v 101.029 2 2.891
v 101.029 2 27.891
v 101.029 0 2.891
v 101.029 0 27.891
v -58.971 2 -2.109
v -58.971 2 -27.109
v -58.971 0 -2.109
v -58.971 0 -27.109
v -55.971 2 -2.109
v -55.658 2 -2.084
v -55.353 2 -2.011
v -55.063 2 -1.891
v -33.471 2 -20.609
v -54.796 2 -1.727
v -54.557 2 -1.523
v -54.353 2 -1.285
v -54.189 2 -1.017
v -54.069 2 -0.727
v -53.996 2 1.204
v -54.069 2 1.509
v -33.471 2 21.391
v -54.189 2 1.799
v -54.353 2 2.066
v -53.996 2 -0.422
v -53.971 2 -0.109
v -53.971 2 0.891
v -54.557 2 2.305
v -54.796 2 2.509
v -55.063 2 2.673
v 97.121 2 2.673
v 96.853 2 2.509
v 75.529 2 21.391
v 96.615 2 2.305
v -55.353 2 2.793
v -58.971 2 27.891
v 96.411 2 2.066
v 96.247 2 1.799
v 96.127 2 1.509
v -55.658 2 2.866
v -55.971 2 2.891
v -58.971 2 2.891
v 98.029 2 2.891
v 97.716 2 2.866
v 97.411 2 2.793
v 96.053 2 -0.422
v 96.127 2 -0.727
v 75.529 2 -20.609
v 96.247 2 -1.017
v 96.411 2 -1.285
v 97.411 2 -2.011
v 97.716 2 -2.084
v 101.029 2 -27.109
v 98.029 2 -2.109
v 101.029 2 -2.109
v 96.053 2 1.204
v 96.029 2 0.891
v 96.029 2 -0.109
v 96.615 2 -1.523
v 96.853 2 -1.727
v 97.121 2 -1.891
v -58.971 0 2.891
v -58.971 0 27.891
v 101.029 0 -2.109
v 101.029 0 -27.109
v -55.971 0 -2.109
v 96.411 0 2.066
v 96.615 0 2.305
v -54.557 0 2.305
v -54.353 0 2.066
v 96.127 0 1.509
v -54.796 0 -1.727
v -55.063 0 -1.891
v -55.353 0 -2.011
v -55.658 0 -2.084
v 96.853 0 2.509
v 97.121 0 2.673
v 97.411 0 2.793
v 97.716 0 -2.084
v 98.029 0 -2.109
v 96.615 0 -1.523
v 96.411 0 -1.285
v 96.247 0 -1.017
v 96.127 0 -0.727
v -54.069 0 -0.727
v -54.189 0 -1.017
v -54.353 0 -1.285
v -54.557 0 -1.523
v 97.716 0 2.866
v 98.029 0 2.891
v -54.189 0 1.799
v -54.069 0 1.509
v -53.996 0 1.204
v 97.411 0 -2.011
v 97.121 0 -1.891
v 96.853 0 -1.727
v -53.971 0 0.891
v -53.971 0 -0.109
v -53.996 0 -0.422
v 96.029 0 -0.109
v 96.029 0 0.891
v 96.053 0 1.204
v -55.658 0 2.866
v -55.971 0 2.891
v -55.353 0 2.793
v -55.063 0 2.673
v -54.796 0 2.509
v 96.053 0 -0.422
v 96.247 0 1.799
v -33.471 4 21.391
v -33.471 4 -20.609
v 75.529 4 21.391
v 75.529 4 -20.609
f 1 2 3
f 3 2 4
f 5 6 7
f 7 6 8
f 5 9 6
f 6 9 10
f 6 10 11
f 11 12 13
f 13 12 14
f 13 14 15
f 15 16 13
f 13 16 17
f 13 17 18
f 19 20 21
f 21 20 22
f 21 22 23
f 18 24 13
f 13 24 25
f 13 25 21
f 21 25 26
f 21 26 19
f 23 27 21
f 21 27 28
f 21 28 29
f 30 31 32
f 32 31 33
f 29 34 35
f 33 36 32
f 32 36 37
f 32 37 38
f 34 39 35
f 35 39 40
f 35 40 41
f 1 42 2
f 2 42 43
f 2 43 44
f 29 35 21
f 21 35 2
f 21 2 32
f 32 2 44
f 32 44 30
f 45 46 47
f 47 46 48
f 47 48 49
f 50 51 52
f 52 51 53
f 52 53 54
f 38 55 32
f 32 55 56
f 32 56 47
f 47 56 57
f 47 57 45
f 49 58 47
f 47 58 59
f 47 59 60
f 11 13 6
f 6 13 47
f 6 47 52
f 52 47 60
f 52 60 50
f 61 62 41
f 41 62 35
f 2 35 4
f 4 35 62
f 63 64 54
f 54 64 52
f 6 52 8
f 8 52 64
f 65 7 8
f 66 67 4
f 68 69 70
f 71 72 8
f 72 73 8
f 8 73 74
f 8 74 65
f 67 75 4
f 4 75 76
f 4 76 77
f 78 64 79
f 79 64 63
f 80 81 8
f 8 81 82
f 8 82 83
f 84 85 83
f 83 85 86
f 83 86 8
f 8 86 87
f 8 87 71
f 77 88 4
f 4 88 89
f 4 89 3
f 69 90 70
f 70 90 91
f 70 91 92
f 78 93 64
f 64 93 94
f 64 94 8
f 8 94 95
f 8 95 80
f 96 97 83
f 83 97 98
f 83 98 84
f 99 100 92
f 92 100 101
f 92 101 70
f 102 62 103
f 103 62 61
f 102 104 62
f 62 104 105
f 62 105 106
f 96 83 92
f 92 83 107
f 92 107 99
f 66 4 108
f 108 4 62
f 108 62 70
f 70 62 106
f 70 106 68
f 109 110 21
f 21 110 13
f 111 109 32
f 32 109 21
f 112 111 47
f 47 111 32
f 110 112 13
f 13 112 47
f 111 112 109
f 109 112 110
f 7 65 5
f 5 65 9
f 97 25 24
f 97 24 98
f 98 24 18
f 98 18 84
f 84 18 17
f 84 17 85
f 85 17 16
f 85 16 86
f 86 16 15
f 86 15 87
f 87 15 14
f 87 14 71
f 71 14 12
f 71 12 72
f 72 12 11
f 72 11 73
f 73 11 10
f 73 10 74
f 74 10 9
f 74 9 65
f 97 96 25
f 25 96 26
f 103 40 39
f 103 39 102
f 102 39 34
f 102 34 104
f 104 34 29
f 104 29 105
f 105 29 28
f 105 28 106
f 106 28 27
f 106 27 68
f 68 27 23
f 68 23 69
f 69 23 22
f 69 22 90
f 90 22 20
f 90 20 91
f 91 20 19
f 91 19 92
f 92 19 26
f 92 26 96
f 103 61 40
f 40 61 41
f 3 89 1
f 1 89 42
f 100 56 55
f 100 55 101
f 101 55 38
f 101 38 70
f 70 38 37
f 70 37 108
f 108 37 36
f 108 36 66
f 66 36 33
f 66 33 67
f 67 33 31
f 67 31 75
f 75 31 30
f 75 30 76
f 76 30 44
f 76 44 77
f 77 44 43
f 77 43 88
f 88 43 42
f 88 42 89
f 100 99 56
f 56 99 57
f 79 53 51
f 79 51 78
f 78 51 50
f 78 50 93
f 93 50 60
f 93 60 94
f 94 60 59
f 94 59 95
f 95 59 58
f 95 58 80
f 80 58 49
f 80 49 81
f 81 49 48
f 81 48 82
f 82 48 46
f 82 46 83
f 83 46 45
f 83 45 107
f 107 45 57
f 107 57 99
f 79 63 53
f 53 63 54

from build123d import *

# Parameters (mm, degrees)
SKETCH1_W           = 160
SKETCH1_H           = 55
BOSS_EXTRUDE1_DEPTH = 2
SKETCH2_W           = 109
SKETCH2_H           = 42
BOSS_EXTRUDE2_DEPTH = 2
CUT_EXTRUDE1_DEPTH  = 2


with BuildPart() as part:
    # Sketch1 → Boss-Extrude1 (new body)
    with BuildSketch(Plane(origin=(0, 0, 0), x_dir=(1, 0, 0), z_dir=(0, 1, 0))):
        with Locations((21.028856201, -0.390930324)):
            Rectangle(SKETCH1_W, SKETCH1_H)
    extrude(amount=BOSS_EXTRUDE1_DEPTH)

    # Sketch2 → Boss-Extrude2 (add)
    with BuildSketch(Plane(origin=(0, 2, 0), x_dir=(1, 0, 0), z_dir=(0, 1, 0))):
        with Locations((21.028856201, -0.390930324)):
            Rectangle(SKETCH2_W, SKETCH2_H)
    extrude(amount=BOSS_EXTRUDE2_DEPTH)

    # Sketch3 → Cut-Extrude1 (cut)
    with BuildSketch(Plane(origin=(0, 2, 0), x_dir=(1, 0, 0), z_dir=(0, 1, 0))):
        with BuildLine():
            Line((-58.971143799, 2.109069676), (-55.971143799, 2.109069676))
            ThreePointArc((-55.971143799, 2.109069676), (-54.556930237, 1.523283239), (-53.971143799, 0.109069676))
            Line((-53.971143799, 0.109069676), (-53.971143799, -0.890930324))
            ThreePointArc((-53.971143799, -0.890930324), (-54.556930237, -2.305143886), (-55.971143799, -2.890930324))
            Line((-55.971143799, -2.890930324), (-58.971143799, -2.890930324))
            Line((-58.971143799, -2.890930324), (-58.971143799, 2.109069676))
        make_face()
        with BuildLine():
            Line((101.028856201, 2.109069676), (98.028856201, 2.109069676))
            ThreePointArc((98.028856201, 2.109069676), (96.614642638, 1.523283239), (96.028856201, 0.109069676))
            Line((96.028856201, 0.109069676), (96.028856201, -0.890930324))
            ThreePointArc((96.028856201, -0.890930324), (96.614642638, -2.305143886), (98.028856201, -2.890930324))
            Line((98.028856201, -2.890930324), (101.028856201, -2.890930324))
            Line((101.028856201, -2.890930324), (101.028856201, 2.109069676))
        make_face()
    extrude(amount=-CUT_EXTRUDE1_DEPTH, mode=Mode.SUBTRACT)


solid = part.part
